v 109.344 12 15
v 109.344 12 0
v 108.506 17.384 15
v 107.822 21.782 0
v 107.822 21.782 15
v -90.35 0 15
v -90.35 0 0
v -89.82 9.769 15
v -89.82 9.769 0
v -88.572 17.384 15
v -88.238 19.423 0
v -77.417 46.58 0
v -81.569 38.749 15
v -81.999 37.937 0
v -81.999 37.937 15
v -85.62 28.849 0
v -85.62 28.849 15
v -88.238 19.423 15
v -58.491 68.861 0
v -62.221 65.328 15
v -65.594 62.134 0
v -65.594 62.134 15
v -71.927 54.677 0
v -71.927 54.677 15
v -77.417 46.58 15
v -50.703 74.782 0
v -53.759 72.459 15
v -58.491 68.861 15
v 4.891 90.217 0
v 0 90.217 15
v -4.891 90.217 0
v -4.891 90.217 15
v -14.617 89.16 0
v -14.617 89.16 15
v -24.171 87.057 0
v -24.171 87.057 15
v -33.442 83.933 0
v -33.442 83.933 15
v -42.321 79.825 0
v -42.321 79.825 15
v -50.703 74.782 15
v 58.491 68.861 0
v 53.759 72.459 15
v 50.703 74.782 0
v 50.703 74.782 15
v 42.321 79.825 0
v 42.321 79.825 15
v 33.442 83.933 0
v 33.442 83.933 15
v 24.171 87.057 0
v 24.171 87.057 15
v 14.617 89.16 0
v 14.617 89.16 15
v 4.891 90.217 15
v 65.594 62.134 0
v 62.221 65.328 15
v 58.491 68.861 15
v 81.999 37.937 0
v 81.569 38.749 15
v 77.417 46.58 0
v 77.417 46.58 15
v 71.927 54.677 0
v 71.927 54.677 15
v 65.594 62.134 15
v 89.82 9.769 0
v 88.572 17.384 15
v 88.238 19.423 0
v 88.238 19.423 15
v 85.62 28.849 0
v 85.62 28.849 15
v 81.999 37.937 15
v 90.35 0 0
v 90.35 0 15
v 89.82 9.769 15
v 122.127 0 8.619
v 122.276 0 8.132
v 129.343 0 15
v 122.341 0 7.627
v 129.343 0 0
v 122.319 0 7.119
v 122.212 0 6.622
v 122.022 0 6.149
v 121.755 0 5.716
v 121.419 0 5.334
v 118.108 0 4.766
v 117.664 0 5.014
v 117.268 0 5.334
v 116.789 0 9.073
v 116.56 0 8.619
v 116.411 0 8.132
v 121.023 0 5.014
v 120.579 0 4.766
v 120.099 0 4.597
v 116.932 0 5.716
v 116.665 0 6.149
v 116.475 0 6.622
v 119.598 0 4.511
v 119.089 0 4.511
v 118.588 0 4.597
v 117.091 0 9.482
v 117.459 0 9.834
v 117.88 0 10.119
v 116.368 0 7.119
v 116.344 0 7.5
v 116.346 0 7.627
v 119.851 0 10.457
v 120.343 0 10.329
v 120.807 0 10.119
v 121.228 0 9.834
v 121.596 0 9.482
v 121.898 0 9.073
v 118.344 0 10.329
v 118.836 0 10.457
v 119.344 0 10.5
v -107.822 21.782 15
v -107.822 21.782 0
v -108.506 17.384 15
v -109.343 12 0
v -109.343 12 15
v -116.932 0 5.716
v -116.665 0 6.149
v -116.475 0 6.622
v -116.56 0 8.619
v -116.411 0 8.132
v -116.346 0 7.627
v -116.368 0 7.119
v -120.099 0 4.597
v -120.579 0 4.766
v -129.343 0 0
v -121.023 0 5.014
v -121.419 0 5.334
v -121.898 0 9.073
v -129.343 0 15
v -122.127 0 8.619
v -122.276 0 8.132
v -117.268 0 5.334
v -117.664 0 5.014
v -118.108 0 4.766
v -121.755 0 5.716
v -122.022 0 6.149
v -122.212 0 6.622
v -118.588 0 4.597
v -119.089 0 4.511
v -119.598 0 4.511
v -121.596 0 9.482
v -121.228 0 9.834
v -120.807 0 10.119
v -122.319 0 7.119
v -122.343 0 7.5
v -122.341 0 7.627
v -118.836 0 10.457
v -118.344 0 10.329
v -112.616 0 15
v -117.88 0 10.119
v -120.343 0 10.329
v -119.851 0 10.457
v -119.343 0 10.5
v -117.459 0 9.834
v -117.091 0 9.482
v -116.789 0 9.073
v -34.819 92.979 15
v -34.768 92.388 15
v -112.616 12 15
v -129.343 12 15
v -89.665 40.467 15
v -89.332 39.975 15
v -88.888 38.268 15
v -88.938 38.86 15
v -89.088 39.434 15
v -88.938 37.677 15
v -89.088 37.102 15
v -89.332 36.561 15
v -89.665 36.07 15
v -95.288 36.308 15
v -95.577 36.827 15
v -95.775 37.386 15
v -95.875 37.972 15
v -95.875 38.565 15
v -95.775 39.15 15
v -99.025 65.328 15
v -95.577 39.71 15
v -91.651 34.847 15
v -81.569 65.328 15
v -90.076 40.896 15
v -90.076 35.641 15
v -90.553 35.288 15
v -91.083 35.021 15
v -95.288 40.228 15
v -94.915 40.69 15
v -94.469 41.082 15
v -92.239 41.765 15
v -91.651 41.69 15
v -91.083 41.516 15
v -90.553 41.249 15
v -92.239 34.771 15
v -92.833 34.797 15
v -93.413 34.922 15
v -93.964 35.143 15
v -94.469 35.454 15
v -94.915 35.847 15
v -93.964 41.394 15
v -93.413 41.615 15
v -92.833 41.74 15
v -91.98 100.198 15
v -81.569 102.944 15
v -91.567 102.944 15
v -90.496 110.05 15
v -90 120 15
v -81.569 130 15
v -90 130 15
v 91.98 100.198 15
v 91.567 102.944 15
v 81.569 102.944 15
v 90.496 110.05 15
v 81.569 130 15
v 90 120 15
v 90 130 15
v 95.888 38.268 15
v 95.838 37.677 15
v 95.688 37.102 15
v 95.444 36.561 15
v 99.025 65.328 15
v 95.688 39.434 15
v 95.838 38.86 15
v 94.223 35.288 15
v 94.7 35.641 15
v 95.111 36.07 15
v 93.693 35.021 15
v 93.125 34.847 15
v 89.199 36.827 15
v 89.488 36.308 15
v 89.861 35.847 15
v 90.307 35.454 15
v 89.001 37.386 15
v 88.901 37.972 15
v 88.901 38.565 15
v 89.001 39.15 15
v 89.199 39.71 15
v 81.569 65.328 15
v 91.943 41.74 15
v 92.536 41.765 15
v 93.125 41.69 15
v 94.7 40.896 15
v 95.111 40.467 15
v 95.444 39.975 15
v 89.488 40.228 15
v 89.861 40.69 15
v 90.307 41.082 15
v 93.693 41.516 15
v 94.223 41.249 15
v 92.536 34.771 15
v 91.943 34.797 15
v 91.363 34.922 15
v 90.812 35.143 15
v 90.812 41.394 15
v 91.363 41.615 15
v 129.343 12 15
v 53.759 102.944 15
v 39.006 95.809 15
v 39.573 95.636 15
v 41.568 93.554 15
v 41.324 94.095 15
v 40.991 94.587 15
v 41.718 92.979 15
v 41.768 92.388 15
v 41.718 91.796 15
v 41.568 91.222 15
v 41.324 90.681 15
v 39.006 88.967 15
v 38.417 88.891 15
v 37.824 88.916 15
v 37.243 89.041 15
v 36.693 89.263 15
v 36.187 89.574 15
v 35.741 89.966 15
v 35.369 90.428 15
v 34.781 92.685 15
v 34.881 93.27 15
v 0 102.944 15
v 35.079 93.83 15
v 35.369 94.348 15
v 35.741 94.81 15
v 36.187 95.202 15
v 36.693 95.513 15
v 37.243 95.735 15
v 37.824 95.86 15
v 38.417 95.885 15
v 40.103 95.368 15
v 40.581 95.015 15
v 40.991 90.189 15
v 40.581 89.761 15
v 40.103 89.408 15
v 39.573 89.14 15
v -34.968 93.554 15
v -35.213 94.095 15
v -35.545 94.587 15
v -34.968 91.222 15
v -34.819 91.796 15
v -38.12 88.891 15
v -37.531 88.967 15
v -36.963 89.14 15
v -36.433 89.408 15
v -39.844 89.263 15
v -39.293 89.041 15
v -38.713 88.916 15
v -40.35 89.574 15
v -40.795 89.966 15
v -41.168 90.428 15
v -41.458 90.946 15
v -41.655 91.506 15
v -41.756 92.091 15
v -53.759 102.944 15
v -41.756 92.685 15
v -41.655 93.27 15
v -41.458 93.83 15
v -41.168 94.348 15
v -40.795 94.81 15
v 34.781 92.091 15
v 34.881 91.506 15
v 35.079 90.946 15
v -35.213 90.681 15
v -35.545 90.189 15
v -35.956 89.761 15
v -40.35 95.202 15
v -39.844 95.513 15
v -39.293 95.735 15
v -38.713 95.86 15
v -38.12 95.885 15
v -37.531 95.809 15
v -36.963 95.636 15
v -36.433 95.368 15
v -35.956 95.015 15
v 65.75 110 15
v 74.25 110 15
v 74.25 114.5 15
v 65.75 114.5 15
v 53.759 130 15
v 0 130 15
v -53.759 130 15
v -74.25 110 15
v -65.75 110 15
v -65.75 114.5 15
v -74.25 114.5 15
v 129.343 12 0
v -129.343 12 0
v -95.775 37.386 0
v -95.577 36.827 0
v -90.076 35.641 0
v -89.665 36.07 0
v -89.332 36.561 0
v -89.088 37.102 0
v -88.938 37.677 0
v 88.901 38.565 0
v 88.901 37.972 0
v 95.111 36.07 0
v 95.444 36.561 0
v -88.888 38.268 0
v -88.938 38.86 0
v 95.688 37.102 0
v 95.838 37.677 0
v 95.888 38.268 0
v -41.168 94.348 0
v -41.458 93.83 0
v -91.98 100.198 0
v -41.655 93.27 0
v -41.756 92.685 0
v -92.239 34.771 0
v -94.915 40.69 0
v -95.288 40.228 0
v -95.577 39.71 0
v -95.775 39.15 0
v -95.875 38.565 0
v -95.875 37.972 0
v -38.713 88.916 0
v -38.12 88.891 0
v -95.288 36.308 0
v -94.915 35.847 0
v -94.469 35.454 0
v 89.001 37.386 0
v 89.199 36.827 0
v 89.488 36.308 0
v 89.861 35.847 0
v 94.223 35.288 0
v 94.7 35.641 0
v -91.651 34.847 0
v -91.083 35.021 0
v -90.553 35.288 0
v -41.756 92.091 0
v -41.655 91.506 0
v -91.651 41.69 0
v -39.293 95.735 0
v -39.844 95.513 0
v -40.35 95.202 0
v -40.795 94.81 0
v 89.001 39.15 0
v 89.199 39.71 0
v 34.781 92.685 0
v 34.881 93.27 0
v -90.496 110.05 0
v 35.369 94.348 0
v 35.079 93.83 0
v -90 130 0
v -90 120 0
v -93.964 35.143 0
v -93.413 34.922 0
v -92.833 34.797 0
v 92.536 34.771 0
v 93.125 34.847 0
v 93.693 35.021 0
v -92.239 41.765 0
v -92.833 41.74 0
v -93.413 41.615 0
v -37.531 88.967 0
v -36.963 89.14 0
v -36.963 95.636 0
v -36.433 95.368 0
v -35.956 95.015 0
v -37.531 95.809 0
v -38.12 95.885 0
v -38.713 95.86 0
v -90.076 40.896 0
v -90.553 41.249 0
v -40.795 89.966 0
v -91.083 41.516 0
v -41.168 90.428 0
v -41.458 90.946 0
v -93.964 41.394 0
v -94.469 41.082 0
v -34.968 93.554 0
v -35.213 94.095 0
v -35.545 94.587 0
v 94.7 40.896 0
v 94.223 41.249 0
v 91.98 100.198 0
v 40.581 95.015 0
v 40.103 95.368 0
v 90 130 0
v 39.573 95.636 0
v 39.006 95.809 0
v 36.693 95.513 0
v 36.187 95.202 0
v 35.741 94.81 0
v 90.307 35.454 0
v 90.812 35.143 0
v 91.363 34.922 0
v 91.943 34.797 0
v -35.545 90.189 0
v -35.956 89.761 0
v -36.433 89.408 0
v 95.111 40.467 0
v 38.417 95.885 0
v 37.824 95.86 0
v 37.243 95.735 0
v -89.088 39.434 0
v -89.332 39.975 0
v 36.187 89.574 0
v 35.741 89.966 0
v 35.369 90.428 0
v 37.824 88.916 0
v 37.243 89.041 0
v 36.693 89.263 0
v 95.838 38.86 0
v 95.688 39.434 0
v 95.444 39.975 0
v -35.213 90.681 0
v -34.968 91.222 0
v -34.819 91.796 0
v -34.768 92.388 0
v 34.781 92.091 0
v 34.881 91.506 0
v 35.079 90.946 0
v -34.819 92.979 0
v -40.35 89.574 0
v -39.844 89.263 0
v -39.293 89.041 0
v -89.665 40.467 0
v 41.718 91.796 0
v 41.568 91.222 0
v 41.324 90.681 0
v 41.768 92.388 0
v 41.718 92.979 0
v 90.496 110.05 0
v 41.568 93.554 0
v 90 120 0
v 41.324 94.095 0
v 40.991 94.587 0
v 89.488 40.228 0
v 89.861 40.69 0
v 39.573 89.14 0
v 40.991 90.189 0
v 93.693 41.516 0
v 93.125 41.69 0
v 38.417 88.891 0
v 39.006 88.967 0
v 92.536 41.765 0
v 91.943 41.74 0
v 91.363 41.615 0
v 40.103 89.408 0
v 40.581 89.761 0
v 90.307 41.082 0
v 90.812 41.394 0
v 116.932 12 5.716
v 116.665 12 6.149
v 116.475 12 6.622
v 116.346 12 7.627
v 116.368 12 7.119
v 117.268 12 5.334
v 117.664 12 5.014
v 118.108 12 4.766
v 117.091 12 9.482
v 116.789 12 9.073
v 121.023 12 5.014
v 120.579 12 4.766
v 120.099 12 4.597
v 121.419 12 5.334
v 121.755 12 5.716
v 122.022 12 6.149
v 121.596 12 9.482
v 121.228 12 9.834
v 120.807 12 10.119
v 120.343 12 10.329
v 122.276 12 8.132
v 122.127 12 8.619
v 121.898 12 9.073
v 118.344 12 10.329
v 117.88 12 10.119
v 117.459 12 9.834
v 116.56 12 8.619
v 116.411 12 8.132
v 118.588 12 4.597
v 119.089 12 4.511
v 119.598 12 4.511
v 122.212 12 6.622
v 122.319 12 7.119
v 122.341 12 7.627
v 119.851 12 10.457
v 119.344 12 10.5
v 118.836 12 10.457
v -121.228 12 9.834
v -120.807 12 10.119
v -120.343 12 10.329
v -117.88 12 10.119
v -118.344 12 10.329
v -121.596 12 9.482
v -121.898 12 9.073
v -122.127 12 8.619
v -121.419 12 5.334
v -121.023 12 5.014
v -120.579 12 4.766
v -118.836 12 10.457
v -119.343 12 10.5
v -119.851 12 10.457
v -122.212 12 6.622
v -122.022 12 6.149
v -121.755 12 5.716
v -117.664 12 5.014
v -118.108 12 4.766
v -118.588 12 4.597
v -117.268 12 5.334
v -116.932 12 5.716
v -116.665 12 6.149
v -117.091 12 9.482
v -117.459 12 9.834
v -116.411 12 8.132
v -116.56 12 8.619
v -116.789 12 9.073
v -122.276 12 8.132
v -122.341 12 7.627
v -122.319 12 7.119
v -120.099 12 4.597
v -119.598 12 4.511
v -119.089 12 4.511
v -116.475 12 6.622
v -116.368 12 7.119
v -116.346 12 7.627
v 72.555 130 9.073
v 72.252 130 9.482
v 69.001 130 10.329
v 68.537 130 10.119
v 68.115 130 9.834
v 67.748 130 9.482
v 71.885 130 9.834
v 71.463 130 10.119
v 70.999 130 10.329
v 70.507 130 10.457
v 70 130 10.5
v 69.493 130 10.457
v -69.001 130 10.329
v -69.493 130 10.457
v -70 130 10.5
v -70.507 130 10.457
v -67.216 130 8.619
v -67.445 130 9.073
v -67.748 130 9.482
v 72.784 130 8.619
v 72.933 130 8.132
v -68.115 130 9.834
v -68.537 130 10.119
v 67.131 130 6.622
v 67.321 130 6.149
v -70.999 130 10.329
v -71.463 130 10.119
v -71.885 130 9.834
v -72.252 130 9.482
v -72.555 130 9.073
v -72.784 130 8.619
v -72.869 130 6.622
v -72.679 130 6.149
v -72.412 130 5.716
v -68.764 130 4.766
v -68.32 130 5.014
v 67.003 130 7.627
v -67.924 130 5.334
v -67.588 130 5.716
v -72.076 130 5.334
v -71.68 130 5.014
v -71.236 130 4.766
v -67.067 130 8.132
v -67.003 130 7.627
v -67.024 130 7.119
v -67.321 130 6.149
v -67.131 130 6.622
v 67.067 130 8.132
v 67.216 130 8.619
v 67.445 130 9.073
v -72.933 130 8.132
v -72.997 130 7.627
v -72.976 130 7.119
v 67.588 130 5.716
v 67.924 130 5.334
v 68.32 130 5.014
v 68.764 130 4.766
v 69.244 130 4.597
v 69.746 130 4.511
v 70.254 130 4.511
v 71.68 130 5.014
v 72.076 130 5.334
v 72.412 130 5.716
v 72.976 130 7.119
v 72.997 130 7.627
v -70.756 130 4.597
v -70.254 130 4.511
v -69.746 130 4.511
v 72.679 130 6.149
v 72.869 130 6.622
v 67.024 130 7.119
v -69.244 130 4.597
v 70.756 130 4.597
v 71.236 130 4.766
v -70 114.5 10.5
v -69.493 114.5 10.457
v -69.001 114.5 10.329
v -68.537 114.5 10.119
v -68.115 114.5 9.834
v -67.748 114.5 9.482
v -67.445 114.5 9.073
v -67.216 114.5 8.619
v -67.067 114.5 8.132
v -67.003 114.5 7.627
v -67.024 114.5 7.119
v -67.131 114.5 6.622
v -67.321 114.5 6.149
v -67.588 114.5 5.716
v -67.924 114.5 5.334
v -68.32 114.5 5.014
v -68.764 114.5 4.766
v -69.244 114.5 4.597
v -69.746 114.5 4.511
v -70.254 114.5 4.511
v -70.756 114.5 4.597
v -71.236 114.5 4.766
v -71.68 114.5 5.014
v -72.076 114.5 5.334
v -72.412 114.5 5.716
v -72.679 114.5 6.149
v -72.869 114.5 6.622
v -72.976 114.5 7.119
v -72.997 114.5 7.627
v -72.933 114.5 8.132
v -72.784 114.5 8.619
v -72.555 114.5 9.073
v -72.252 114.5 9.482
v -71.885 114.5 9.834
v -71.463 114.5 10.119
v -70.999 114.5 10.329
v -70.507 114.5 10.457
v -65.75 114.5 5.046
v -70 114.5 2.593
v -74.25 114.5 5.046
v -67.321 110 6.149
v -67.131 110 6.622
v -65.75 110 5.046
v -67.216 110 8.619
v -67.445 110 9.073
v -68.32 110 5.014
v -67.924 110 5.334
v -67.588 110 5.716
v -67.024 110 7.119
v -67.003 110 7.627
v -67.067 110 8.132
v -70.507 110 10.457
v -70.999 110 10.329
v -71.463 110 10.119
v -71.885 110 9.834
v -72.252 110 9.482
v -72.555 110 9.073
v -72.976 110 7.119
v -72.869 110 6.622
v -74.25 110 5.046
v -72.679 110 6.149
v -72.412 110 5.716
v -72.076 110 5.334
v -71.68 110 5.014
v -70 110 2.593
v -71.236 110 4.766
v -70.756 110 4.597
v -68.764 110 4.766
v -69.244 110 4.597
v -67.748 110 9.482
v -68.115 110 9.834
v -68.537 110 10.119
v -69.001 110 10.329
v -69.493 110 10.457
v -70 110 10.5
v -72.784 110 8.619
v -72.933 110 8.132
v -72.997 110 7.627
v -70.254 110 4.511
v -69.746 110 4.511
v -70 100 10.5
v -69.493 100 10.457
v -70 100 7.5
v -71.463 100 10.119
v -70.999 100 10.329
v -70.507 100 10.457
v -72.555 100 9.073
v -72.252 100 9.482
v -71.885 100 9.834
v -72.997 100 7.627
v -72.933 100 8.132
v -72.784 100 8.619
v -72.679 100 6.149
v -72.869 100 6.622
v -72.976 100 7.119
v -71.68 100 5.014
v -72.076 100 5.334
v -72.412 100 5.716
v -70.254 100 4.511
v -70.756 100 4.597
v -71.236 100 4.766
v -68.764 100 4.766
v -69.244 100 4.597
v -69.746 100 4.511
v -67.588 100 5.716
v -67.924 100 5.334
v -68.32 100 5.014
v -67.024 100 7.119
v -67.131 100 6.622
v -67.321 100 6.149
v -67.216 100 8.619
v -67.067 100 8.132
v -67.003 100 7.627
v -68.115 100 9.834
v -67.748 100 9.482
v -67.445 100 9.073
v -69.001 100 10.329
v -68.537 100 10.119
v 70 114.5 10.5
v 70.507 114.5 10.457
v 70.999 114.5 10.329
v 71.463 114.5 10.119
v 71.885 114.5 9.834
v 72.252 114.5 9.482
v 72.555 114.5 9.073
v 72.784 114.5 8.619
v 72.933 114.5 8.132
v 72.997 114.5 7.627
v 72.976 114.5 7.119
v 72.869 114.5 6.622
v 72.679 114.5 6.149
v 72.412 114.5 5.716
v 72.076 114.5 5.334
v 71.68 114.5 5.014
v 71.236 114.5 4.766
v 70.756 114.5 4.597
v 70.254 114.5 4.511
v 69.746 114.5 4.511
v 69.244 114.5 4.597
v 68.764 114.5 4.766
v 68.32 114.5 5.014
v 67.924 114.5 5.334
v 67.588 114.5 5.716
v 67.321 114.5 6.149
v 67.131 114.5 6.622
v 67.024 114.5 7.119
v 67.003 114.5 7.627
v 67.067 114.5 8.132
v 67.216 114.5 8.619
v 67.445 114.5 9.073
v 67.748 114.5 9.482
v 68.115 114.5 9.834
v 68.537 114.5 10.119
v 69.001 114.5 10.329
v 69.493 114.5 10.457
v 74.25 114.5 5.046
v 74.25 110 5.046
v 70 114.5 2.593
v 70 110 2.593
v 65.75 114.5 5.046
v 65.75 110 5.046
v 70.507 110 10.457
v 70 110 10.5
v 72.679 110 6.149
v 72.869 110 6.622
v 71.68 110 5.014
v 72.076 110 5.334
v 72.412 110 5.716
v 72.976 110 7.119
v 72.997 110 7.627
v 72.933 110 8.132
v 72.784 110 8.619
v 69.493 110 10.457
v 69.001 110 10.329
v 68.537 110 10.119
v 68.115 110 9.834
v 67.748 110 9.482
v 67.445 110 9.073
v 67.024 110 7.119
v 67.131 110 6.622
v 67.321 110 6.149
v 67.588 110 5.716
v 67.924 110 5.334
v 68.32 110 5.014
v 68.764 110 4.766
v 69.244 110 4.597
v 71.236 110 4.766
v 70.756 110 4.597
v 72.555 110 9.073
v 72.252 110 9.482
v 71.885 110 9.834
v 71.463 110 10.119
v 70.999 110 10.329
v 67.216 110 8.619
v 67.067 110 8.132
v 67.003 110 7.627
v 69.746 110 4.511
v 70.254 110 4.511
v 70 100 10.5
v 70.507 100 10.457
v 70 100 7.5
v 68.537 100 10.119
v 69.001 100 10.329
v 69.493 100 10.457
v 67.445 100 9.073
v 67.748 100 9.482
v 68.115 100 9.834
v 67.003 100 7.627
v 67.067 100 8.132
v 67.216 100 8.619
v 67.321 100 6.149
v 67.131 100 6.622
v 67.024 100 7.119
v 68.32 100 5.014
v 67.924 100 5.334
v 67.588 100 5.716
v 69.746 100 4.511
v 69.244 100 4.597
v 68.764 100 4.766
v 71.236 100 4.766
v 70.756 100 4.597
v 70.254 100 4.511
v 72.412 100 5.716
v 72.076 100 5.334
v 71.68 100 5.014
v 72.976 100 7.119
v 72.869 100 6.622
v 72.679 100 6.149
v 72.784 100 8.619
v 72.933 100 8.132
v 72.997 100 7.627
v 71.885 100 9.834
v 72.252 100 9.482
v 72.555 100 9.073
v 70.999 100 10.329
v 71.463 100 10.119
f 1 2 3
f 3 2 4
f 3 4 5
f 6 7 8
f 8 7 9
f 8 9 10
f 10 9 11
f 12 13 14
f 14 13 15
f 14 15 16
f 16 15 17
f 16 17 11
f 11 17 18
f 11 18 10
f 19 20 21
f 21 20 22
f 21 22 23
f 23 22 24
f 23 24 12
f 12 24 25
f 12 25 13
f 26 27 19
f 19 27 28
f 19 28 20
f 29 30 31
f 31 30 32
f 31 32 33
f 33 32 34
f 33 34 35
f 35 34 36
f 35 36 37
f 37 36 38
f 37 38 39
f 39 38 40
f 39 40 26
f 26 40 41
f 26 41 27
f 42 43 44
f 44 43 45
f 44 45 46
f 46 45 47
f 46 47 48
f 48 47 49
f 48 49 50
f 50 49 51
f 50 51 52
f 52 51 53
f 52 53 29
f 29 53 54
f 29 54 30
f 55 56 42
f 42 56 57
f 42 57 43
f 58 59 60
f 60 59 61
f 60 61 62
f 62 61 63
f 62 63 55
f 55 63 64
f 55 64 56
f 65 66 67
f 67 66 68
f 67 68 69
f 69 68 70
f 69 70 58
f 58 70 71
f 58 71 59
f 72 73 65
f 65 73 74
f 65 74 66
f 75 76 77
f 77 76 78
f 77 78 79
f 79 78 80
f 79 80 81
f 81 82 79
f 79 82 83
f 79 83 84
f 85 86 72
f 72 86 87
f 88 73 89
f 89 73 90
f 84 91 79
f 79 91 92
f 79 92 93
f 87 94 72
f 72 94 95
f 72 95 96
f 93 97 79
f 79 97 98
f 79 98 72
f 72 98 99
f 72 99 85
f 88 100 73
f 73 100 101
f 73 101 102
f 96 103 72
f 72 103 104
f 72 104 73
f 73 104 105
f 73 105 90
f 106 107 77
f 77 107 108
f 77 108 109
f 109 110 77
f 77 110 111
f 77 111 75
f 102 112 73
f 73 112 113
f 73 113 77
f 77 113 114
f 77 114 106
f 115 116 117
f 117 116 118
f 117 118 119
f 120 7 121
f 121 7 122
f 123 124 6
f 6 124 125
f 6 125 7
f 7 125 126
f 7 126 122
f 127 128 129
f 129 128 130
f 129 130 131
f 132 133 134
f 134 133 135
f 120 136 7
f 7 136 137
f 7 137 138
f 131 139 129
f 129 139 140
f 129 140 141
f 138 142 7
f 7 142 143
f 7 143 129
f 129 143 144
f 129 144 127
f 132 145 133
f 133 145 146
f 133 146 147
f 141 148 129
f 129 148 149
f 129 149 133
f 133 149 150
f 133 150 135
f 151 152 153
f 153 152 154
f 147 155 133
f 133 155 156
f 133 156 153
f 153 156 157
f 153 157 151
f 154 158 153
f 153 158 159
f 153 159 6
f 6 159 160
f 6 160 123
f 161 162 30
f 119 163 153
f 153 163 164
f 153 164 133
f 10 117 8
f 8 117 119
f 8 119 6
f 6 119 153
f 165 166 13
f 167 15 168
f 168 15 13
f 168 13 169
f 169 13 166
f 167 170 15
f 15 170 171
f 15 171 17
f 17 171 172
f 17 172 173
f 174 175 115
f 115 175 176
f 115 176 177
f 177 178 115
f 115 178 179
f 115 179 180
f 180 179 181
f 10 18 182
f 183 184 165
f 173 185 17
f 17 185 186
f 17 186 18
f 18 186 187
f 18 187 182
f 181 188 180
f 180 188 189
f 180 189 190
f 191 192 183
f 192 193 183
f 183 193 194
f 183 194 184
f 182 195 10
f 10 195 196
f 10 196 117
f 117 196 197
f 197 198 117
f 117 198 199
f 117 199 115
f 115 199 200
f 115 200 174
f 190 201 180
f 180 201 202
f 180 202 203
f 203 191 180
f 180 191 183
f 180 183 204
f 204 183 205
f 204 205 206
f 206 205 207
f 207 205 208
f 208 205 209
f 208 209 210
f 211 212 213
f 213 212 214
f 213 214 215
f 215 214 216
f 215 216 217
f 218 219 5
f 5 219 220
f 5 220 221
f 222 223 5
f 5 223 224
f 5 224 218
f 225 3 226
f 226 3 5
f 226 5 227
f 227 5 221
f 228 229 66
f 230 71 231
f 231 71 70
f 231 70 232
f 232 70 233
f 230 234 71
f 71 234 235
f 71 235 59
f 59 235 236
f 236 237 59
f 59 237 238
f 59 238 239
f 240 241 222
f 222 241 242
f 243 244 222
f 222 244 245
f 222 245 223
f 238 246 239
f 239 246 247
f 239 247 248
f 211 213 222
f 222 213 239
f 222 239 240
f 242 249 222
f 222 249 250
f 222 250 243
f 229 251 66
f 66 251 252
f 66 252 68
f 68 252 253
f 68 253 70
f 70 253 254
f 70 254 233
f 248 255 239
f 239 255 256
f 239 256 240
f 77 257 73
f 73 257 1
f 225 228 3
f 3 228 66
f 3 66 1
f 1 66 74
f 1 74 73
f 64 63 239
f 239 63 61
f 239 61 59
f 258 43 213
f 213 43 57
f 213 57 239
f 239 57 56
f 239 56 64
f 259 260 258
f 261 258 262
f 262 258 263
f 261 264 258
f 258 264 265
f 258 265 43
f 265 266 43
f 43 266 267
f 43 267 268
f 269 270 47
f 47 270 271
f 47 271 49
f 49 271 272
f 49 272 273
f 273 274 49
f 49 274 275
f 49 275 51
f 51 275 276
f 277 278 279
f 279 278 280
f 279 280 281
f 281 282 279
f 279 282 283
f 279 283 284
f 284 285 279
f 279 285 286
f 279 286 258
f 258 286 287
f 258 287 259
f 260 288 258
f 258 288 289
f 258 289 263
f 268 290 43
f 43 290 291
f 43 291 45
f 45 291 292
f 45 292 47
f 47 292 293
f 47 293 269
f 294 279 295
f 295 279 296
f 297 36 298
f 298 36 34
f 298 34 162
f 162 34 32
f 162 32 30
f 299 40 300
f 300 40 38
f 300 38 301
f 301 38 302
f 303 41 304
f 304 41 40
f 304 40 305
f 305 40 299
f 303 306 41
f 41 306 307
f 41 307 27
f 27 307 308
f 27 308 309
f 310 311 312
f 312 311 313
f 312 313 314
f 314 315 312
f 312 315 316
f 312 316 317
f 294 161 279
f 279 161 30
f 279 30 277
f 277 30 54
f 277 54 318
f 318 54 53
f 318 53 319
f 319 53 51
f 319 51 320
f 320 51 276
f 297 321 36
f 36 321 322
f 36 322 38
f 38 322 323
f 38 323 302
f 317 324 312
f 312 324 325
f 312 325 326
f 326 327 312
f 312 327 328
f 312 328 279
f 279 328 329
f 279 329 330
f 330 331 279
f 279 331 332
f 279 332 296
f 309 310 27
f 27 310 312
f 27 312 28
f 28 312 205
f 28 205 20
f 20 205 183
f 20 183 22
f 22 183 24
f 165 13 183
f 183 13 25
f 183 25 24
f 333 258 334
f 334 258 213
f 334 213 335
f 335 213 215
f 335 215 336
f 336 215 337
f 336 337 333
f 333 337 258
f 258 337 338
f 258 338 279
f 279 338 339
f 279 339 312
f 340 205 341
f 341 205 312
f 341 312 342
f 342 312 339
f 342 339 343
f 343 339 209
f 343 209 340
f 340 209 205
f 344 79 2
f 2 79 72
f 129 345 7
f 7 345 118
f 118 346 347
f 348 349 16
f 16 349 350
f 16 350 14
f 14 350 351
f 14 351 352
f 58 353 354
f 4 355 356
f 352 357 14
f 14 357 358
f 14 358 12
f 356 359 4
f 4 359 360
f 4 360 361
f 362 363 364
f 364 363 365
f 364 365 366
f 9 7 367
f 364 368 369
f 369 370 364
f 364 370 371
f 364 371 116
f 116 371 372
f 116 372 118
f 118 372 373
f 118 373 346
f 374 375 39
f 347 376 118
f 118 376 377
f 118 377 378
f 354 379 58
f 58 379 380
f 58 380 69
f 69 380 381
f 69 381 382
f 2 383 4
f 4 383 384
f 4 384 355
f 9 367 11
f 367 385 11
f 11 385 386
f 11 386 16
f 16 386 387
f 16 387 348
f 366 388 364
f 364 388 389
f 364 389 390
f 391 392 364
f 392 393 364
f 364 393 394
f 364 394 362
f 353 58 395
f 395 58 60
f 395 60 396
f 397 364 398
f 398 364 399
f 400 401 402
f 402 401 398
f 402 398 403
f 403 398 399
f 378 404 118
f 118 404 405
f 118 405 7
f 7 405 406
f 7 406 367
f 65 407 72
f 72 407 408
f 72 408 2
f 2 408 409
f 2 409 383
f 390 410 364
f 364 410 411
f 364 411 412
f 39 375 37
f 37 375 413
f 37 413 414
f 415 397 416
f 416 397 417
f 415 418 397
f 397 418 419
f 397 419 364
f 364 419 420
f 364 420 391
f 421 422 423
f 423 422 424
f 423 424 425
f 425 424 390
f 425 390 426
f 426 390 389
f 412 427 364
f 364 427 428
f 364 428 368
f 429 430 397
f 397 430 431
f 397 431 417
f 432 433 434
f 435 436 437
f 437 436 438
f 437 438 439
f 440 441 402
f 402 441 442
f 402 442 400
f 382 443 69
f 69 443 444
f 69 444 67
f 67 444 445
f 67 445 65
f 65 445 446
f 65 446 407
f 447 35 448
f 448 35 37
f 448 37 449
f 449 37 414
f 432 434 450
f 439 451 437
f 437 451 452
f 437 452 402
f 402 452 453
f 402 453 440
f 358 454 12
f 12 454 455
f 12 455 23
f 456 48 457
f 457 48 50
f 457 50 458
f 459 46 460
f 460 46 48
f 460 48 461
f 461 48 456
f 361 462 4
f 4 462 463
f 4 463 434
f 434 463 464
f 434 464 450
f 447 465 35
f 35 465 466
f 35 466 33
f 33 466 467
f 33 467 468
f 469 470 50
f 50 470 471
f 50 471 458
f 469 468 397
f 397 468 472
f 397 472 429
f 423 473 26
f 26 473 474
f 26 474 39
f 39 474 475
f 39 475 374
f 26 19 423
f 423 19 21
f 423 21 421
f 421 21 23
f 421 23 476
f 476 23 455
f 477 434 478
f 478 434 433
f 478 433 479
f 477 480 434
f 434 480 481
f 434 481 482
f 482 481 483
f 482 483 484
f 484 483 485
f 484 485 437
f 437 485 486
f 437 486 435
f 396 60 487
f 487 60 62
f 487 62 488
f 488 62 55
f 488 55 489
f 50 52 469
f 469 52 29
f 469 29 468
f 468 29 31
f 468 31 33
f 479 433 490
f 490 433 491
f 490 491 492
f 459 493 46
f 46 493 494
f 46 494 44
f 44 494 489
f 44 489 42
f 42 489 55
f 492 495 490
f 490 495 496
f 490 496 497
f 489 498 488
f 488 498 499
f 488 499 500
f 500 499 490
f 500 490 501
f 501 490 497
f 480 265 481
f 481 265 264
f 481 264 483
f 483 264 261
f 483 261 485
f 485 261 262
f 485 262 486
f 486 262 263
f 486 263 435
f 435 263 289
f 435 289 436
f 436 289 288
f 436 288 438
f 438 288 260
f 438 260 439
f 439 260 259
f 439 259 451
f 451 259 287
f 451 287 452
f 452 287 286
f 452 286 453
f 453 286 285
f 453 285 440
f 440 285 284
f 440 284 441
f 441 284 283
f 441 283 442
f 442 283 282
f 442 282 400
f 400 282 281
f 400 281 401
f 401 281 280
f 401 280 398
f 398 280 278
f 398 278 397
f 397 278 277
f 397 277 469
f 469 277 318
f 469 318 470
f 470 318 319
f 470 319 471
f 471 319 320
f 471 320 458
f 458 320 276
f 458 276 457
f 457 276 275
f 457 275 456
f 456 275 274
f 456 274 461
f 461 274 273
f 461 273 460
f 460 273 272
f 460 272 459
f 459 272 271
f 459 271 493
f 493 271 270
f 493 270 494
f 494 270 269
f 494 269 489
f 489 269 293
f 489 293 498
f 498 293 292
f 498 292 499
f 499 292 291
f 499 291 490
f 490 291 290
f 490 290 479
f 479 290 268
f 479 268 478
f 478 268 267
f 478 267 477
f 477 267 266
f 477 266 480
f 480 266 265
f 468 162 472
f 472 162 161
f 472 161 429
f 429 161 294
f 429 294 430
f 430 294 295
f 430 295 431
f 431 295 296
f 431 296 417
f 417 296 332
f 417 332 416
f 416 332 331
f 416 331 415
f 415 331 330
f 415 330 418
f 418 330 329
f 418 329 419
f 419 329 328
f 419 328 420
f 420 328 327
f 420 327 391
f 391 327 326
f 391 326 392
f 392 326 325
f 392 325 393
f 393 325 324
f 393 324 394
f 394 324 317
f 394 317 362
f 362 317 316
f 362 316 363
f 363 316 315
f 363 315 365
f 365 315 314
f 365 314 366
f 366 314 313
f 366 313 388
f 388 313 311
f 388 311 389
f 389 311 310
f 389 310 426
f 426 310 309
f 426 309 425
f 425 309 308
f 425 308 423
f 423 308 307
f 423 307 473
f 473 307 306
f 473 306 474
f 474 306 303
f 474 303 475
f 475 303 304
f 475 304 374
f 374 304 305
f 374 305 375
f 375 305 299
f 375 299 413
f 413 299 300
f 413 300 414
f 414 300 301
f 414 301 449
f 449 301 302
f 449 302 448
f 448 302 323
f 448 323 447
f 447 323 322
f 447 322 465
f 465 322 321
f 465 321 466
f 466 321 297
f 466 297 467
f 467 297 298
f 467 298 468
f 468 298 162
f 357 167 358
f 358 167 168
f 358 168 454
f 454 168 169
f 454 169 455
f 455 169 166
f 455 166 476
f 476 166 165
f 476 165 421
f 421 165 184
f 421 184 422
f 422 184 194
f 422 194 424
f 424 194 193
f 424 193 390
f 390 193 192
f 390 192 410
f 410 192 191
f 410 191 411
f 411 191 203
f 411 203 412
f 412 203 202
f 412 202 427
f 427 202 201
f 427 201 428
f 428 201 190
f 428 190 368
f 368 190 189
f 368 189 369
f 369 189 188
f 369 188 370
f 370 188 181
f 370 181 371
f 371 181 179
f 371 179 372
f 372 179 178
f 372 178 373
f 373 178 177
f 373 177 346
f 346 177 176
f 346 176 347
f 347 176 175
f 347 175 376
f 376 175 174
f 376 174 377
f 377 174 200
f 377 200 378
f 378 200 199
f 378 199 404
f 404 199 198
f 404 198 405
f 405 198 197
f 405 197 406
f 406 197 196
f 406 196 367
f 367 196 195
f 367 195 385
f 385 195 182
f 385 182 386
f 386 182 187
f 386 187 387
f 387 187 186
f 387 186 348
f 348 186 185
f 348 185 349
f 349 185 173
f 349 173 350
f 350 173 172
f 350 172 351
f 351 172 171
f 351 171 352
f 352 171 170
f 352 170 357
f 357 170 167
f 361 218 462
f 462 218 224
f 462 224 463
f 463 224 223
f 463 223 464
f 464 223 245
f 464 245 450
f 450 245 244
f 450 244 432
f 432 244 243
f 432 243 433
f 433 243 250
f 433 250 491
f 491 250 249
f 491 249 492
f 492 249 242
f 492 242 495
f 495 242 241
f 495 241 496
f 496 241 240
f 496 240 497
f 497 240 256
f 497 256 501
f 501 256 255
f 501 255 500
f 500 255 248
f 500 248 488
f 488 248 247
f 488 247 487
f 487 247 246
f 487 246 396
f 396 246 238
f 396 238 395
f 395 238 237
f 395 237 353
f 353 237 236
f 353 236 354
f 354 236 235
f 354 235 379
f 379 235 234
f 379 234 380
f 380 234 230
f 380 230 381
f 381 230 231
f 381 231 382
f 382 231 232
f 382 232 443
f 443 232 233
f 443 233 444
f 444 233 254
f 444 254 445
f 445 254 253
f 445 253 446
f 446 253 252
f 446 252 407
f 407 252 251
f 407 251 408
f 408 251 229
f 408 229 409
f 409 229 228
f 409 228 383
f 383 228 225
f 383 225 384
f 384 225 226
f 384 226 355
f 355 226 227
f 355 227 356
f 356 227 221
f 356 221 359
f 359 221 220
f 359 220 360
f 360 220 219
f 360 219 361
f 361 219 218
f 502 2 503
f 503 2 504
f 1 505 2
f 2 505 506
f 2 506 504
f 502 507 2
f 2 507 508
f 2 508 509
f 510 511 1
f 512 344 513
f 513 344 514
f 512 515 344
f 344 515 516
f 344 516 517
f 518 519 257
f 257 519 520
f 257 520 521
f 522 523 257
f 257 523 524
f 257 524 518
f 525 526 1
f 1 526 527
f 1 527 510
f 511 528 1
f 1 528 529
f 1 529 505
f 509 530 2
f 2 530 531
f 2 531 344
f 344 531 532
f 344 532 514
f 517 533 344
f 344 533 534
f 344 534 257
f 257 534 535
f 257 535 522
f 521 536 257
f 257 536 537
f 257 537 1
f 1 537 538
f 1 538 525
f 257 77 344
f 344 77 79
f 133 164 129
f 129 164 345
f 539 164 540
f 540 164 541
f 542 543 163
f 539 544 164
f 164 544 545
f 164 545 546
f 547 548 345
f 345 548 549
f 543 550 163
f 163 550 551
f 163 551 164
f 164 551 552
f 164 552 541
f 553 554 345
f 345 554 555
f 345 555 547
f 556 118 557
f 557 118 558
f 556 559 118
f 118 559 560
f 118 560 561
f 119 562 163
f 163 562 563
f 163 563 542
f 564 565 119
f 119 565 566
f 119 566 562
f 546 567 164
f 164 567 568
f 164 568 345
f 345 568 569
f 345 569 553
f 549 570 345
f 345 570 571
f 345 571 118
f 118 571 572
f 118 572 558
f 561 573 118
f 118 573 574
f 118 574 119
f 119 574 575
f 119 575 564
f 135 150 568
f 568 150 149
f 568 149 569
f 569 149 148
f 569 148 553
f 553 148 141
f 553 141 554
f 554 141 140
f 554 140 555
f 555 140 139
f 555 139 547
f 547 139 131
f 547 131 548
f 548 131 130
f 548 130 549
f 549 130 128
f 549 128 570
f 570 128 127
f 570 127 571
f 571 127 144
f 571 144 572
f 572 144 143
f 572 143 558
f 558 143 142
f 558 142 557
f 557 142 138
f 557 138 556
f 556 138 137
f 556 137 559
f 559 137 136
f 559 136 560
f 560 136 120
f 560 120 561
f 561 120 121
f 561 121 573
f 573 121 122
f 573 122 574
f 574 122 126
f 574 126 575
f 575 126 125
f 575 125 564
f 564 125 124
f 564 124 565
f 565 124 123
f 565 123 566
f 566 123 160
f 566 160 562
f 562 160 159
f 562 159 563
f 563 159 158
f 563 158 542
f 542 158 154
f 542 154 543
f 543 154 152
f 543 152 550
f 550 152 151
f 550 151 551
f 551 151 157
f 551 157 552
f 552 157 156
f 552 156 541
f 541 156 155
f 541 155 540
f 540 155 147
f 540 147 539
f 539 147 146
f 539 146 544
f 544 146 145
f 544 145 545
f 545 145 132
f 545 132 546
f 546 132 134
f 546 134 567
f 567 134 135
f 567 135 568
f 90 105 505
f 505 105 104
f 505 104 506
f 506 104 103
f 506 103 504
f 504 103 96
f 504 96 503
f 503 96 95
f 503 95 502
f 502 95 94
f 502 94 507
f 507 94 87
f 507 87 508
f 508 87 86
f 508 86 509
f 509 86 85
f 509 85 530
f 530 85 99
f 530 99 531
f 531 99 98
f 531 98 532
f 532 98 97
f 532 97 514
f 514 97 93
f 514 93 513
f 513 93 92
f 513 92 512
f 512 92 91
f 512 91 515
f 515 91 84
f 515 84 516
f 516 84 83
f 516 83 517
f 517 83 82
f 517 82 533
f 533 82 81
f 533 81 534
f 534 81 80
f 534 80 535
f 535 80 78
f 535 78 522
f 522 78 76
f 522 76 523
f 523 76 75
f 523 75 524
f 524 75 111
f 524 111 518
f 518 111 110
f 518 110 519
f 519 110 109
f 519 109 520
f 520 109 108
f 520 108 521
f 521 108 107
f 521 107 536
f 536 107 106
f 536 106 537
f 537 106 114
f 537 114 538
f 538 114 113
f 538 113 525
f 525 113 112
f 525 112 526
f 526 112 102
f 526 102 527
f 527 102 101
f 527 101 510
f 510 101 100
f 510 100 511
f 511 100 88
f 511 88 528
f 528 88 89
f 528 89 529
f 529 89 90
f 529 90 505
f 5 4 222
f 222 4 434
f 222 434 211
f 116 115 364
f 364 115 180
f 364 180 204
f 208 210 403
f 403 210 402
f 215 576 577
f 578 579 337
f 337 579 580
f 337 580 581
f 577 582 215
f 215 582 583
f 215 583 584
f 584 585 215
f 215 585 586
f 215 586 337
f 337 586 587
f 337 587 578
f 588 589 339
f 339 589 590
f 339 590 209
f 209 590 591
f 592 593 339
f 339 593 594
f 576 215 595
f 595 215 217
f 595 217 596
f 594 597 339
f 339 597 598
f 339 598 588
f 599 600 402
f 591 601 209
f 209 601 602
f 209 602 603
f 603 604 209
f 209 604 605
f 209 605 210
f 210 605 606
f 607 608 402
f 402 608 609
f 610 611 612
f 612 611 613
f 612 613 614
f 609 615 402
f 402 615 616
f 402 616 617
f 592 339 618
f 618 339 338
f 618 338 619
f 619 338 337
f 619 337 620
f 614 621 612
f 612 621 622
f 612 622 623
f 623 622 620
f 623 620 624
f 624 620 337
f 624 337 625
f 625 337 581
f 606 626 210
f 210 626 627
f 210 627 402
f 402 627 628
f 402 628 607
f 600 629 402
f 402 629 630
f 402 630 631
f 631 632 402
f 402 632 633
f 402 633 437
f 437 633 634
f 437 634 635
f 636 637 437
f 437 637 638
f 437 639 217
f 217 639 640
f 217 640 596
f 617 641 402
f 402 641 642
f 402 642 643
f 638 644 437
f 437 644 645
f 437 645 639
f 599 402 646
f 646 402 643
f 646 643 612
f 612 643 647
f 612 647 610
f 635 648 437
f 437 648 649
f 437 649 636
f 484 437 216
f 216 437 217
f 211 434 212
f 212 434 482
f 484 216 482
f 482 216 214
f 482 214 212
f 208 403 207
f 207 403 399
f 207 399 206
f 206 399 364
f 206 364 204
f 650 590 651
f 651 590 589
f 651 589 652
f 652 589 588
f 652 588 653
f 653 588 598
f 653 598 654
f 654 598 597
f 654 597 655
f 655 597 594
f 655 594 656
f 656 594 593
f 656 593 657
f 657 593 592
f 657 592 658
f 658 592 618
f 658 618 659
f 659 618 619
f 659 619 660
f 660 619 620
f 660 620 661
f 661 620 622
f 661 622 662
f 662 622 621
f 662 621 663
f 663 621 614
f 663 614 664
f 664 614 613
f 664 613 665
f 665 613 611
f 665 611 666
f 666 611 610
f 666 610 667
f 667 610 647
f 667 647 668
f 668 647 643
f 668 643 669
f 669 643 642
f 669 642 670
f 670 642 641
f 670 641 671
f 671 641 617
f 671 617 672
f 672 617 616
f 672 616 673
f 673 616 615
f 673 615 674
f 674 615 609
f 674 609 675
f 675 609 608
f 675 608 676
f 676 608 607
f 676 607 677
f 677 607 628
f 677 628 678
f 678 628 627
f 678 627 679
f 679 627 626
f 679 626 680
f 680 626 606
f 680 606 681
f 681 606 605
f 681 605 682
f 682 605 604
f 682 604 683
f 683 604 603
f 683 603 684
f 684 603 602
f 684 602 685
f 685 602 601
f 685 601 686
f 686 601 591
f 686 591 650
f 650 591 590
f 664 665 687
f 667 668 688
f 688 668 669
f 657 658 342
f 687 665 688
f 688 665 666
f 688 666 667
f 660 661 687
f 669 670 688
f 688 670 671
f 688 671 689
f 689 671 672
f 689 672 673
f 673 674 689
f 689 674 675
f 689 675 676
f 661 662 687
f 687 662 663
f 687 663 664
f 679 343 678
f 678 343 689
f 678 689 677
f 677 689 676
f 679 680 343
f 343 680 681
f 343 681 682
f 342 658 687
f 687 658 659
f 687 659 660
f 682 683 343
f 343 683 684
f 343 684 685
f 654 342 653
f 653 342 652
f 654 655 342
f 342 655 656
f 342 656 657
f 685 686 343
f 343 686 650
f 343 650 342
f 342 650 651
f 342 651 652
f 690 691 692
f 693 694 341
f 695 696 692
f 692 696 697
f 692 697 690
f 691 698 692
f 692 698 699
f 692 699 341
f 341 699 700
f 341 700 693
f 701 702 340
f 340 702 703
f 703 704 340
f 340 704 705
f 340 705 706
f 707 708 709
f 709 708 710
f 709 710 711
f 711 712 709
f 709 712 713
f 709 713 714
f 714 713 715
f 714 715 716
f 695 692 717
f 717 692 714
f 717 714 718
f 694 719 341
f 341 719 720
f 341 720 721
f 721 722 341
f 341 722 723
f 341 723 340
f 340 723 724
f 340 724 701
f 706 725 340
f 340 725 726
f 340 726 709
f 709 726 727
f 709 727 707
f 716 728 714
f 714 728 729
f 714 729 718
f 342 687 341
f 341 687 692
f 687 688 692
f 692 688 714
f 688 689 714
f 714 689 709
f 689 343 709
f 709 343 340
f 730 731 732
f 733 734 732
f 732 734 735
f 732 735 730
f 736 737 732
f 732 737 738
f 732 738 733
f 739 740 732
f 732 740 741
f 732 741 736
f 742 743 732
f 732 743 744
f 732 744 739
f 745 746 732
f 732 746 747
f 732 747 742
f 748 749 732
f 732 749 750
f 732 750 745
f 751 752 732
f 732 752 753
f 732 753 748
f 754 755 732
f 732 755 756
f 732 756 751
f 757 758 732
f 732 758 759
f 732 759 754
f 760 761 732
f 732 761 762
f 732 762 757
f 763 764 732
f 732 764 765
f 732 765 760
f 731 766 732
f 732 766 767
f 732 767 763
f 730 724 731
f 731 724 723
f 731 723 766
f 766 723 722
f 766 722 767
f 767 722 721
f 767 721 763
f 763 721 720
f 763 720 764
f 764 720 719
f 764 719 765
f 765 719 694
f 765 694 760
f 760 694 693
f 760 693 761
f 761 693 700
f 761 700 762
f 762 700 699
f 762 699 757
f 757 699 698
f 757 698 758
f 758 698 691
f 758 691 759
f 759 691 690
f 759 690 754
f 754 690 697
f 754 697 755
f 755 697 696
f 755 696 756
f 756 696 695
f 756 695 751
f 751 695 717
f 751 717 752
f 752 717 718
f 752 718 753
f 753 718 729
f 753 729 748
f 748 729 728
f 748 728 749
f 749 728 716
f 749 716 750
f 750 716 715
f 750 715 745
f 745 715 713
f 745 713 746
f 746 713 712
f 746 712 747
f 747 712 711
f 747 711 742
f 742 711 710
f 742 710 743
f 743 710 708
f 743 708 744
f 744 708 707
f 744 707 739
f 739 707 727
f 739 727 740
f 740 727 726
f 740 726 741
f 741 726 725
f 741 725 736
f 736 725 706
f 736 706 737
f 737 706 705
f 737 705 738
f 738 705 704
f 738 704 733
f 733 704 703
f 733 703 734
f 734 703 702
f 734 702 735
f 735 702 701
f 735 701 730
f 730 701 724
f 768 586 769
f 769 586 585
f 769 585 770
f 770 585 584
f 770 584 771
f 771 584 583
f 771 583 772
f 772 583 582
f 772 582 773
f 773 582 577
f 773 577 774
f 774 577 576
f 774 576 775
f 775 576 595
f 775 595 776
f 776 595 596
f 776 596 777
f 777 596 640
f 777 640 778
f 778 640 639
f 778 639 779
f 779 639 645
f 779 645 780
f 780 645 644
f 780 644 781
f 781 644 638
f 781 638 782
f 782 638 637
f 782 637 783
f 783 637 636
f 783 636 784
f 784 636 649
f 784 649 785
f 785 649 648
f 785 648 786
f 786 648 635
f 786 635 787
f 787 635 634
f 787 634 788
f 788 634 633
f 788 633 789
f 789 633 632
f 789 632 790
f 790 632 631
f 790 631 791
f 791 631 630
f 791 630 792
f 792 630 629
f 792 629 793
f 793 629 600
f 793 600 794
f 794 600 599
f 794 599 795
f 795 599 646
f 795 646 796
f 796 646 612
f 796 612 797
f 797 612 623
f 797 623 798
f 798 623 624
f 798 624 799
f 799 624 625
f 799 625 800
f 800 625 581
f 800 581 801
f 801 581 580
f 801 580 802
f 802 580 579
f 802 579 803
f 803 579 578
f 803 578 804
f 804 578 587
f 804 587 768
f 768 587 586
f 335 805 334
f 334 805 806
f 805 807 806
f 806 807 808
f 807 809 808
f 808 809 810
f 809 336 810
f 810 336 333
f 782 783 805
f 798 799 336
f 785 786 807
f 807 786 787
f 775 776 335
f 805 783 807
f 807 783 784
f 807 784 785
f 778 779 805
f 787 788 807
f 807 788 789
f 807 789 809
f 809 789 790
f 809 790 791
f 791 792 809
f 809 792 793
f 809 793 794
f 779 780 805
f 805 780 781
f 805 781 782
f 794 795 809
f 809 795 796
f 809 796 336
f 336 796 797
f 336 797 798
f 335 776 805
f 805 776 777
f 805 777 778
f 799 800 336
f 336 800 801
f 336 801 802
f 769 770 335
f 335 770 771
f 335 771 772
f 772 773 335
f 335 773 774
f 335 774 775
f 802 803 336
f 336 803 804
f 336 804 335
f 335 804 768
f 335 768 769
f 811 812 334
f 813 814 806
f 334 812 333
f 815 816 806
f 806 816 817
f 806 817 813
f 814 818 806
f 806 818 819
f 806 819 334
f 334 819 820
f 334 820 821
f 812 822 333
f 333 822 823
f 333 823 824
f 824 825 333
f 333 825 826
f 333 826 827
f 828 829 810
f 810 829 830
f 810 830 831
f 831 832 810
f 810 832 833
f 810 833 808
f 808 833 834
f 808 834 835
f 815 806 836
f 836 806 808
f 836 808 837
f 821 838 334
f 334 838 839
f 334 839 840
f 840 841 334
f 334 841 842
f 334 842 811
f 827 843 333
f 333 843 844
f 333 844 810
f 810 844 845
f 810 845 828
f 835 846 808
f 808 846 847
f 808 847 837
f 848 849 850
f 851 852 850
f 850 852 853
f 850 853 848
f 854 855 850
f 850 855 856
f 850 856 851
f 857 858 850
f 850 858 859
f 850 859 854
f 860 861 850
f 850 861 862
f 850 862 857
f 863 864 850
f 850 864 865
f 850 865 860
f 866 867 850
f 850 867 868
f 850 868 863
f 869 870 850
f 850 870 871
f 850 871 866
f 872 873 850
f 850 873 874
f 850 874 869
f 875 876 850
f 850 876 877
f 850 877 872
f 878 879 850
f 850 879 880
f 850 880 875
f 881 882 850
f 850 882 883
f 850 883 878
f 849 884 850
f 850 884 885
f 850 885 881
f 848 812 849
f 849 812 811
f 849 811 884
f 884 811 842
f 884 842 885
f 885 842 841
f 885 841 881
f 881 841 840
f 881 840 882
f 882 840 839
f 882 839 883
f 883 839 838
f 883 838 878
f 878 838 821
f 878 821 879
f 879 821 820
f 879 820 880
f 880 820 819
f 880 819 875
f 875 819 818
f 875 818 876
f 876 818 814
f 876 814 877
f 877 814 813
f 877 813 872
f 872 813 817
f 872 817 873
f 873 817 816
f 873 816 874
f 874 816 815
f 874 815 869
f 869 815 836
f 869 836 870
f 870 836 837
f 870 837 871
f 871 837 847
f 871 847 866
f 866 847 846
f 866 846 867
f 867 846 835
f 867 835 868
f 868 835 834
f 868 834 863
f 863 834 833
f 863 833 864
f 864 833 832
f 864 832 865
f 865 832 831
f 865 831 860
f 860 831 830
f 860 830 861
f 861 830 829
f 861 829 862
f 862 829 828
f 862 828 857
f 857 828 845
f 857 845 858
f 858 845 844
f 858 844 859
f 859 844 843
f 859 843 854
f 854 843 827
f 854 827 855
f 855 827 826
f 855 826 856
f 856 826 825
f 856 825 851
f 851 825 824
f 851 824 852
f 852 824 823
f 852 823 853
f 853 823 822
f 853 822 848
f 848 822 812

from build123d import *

# Parameters (mm, degrees)
EXTRUDE_1_DEPTH     = 15
SKETCH_2_R          = 3.5
CUT_EXTRUDE_2_DEPTH = 15
EXTRUDE_START       = -15
EXTRUDE_2_DEPTH     = 15
CUT_EXTRUDE_3_REACH = 164.969
SKETCH_4_R          = 3
EXTRUDE_3_DEPTH     = 15
FILLET_2_R          = 100
FILLET_3_R          = 100
SKETCH_6_R          = 3
CUT_EXTRUDE_4_DEPTH = 30
CUT_EXTRUDE_5_DEPTH = 4.5


with BuildPart() as part:
    # 草图1 → 凸台-拉伸1 (new body)
    with BuildSketch(Plane.XY):
        with BuildLine():
            Line((-90.35, 0), (-110, 0))
            ThreePointArc((-110, 0), (0, 110), (110, 0))
            Line((110, 0), (90.35, 0))
            ThreePointArc((90.35, 0), (0, 90.35), (-90.35, 0))
        make_face()
    extrude(amount=EXTRUDE_1_DEPTH)

    # 草图2 → 切除-拉伸2 (cut)
    with BuildSketch(Plane.XY.offset(15)):
        with Locations((38.268343237, 92.387953251)):
            Circle(SKETCH_2_R)
        with Locations((92.387953251, 38.268343237)):
            Circle(SKETCH_2_R)
        with Locations((92.387953251, -38.268343237)):
            Circle(SKETCH_2_R)
        with Locations((38.268343237, -92.387953251)):
            Circle(SKETCH_2_R)
        with Locations((-38.268343237, -92.387953251)):
            Circle(SKETCH_2_R)
        with Locations((-92.387953251, -38.268343237)):
            Circle(SKETCH_2_R)
        with Locations((-92.387953251, 38.268343237)):
            Circle(SKETCH_2_R)
        with Locations((-38.268343237, 92.387953251)):
            Circle(SKETCH_2_R)
    extrude(amount=-CUT_EXTRUDE_2_DEPTH, mode=Mode.SUBTRACT)

    # 草图3 → 凸台-拉伸2 (add)
    with BuildSketch(Plane.XY.offset(15).offset(EXTRUDE_START)):
        with BuildLine():
            Line((-110, 0), (-129.343495463, 0))
            Line((-129.343495463, 0), (-129.343495463, 12))
            Line((-129.343495463, 12), (-109.343495463, 12))
            ThreePointArc((-109.343495463, 12), (-109.83575124, 6.008972421), (-110, 0))
        make_face()
        with BuildLine():
            Line((129.343495463, 12), (109.343495463, 12))
            ThreePointArc((109.343495463, 12), (109.83575124, 6.008972421), (110, 0))
            Line((110, 0), (129.343495463, 0))
            Line((129.343495463, 0), (129.343495463, 12))
        make_face()
    extrude(amount=EXTRUDE_2_DEPTH)

    # 草图4 → 切除-拉伸3 (cut, up to next)
    with BuildSketch(Plane(origin=(0, 12, 0), x_dir=(1, 0, 0), z_dir=(0, 1, 0)), mode=Mode.PRIVATE) as cut_extrude_3_sk1:
        with Locations(Location((-119.343495463, -7.5, 0), (0, 0, 270))):
            Circle(SKETCH_4_R)
    cut_extrude_3_tool1 = extrude(cut_extrude_3_sk1.sketch, amount=-CUT_EXTRUDE_3_REACH, mode=Mode.PRIVATE) & part.part
    cut_extrude_3 = cut_extrude_3_tool1.solids().sort_by_distance((-119.343495, 12, 7.5))[0]
    add(cut_extrude_3, mode=Mode.SUBTRACT)

    # 镜向1: 切除-拉伸3 across plane
    add(cut_extrude_3.mirror(Plane.ZY), mode=Mode.SUBTRACT)

    # 草图5 → 凸台-拉伸3 (add)
    with BuildSketch(Plane.XY.offset(15).offset(EXTRUDE_START)):
        with BuildLine():
            Line((-90, 130), (90, 130))
            Line((90, 130), (90, 110))
            Line((90, 110), (107.821782178, 21.782178218))
            ThreePointArc((107.821782178, 21.782178218), (0, 110), (-107.821782178, 21.782178218))
            Line((-107.821782178, 21.782178218), (-90, 110))
            Line((-90, 110), (-90, 130))
        make_face()
    extrude(amount=EXTRUDE_3_DEPTH)

    # 圆角2
    fillet_2_edges = [part.edges().sort_by_distance(p)[0] for p in [
        (90, 110, 7.5),
    ]]
    fillet(fillet_2_edges, radius=FILLET_2_R)

    # 圆角3
    fillet_3_edges = [part.edges().sort_by_distance(p)[0] for p in [
        (-90, 110, 7.5),
    ]]
    fillet(fillet_3_edges, radius=FILLET_3_R)

    # 草图6 → 切除-拉伸4 (cut)
    with BuildSketch(Plane(origin=(0, 130, 0), x_dir=(1, 0, 0), z_dir=(0, 1, 0))):
        with Locations(Location((-70, -7.5, 0), (0, 0, 270))):
            Circle(SKETCH_6_R)
    cut_extrude_4 = extrude(amount=-CUT_EXTRUDE_4_DEPTH, mode=Mode.SUBTRACT)

    # 草图7 → 切除-拉伸5 (cut)
    with BuildSketch(Plane(origin=(0, 110, 0), x_dir=(1, 0, 0), z_dir=(0, 1, 0))):
        Polygon((-74.25, -9.953738644), (-74.25, -15), (-65.75, -15), (-65.75, -9.953738644), (-65.75, -5.046261356), (-70, -2.592522712), (-74.25, -5.046261356), align=None)
    cut_extrude_5 = extrude(amount=CUT_EXTRUDE_5_DEPTH, mode=Mode.SUBTRACT)

    # 镜向2: 切除-拉伸4, 切除-拉伸5 across plane
    add(cut_extrude_4.mirror(Plane.ZY), mode=Mode.SUBTRACT)
    add(cut_extrude_5.mirror(Plane.ZY), mode=Mode.SUBTRACT)


solid = part.part
